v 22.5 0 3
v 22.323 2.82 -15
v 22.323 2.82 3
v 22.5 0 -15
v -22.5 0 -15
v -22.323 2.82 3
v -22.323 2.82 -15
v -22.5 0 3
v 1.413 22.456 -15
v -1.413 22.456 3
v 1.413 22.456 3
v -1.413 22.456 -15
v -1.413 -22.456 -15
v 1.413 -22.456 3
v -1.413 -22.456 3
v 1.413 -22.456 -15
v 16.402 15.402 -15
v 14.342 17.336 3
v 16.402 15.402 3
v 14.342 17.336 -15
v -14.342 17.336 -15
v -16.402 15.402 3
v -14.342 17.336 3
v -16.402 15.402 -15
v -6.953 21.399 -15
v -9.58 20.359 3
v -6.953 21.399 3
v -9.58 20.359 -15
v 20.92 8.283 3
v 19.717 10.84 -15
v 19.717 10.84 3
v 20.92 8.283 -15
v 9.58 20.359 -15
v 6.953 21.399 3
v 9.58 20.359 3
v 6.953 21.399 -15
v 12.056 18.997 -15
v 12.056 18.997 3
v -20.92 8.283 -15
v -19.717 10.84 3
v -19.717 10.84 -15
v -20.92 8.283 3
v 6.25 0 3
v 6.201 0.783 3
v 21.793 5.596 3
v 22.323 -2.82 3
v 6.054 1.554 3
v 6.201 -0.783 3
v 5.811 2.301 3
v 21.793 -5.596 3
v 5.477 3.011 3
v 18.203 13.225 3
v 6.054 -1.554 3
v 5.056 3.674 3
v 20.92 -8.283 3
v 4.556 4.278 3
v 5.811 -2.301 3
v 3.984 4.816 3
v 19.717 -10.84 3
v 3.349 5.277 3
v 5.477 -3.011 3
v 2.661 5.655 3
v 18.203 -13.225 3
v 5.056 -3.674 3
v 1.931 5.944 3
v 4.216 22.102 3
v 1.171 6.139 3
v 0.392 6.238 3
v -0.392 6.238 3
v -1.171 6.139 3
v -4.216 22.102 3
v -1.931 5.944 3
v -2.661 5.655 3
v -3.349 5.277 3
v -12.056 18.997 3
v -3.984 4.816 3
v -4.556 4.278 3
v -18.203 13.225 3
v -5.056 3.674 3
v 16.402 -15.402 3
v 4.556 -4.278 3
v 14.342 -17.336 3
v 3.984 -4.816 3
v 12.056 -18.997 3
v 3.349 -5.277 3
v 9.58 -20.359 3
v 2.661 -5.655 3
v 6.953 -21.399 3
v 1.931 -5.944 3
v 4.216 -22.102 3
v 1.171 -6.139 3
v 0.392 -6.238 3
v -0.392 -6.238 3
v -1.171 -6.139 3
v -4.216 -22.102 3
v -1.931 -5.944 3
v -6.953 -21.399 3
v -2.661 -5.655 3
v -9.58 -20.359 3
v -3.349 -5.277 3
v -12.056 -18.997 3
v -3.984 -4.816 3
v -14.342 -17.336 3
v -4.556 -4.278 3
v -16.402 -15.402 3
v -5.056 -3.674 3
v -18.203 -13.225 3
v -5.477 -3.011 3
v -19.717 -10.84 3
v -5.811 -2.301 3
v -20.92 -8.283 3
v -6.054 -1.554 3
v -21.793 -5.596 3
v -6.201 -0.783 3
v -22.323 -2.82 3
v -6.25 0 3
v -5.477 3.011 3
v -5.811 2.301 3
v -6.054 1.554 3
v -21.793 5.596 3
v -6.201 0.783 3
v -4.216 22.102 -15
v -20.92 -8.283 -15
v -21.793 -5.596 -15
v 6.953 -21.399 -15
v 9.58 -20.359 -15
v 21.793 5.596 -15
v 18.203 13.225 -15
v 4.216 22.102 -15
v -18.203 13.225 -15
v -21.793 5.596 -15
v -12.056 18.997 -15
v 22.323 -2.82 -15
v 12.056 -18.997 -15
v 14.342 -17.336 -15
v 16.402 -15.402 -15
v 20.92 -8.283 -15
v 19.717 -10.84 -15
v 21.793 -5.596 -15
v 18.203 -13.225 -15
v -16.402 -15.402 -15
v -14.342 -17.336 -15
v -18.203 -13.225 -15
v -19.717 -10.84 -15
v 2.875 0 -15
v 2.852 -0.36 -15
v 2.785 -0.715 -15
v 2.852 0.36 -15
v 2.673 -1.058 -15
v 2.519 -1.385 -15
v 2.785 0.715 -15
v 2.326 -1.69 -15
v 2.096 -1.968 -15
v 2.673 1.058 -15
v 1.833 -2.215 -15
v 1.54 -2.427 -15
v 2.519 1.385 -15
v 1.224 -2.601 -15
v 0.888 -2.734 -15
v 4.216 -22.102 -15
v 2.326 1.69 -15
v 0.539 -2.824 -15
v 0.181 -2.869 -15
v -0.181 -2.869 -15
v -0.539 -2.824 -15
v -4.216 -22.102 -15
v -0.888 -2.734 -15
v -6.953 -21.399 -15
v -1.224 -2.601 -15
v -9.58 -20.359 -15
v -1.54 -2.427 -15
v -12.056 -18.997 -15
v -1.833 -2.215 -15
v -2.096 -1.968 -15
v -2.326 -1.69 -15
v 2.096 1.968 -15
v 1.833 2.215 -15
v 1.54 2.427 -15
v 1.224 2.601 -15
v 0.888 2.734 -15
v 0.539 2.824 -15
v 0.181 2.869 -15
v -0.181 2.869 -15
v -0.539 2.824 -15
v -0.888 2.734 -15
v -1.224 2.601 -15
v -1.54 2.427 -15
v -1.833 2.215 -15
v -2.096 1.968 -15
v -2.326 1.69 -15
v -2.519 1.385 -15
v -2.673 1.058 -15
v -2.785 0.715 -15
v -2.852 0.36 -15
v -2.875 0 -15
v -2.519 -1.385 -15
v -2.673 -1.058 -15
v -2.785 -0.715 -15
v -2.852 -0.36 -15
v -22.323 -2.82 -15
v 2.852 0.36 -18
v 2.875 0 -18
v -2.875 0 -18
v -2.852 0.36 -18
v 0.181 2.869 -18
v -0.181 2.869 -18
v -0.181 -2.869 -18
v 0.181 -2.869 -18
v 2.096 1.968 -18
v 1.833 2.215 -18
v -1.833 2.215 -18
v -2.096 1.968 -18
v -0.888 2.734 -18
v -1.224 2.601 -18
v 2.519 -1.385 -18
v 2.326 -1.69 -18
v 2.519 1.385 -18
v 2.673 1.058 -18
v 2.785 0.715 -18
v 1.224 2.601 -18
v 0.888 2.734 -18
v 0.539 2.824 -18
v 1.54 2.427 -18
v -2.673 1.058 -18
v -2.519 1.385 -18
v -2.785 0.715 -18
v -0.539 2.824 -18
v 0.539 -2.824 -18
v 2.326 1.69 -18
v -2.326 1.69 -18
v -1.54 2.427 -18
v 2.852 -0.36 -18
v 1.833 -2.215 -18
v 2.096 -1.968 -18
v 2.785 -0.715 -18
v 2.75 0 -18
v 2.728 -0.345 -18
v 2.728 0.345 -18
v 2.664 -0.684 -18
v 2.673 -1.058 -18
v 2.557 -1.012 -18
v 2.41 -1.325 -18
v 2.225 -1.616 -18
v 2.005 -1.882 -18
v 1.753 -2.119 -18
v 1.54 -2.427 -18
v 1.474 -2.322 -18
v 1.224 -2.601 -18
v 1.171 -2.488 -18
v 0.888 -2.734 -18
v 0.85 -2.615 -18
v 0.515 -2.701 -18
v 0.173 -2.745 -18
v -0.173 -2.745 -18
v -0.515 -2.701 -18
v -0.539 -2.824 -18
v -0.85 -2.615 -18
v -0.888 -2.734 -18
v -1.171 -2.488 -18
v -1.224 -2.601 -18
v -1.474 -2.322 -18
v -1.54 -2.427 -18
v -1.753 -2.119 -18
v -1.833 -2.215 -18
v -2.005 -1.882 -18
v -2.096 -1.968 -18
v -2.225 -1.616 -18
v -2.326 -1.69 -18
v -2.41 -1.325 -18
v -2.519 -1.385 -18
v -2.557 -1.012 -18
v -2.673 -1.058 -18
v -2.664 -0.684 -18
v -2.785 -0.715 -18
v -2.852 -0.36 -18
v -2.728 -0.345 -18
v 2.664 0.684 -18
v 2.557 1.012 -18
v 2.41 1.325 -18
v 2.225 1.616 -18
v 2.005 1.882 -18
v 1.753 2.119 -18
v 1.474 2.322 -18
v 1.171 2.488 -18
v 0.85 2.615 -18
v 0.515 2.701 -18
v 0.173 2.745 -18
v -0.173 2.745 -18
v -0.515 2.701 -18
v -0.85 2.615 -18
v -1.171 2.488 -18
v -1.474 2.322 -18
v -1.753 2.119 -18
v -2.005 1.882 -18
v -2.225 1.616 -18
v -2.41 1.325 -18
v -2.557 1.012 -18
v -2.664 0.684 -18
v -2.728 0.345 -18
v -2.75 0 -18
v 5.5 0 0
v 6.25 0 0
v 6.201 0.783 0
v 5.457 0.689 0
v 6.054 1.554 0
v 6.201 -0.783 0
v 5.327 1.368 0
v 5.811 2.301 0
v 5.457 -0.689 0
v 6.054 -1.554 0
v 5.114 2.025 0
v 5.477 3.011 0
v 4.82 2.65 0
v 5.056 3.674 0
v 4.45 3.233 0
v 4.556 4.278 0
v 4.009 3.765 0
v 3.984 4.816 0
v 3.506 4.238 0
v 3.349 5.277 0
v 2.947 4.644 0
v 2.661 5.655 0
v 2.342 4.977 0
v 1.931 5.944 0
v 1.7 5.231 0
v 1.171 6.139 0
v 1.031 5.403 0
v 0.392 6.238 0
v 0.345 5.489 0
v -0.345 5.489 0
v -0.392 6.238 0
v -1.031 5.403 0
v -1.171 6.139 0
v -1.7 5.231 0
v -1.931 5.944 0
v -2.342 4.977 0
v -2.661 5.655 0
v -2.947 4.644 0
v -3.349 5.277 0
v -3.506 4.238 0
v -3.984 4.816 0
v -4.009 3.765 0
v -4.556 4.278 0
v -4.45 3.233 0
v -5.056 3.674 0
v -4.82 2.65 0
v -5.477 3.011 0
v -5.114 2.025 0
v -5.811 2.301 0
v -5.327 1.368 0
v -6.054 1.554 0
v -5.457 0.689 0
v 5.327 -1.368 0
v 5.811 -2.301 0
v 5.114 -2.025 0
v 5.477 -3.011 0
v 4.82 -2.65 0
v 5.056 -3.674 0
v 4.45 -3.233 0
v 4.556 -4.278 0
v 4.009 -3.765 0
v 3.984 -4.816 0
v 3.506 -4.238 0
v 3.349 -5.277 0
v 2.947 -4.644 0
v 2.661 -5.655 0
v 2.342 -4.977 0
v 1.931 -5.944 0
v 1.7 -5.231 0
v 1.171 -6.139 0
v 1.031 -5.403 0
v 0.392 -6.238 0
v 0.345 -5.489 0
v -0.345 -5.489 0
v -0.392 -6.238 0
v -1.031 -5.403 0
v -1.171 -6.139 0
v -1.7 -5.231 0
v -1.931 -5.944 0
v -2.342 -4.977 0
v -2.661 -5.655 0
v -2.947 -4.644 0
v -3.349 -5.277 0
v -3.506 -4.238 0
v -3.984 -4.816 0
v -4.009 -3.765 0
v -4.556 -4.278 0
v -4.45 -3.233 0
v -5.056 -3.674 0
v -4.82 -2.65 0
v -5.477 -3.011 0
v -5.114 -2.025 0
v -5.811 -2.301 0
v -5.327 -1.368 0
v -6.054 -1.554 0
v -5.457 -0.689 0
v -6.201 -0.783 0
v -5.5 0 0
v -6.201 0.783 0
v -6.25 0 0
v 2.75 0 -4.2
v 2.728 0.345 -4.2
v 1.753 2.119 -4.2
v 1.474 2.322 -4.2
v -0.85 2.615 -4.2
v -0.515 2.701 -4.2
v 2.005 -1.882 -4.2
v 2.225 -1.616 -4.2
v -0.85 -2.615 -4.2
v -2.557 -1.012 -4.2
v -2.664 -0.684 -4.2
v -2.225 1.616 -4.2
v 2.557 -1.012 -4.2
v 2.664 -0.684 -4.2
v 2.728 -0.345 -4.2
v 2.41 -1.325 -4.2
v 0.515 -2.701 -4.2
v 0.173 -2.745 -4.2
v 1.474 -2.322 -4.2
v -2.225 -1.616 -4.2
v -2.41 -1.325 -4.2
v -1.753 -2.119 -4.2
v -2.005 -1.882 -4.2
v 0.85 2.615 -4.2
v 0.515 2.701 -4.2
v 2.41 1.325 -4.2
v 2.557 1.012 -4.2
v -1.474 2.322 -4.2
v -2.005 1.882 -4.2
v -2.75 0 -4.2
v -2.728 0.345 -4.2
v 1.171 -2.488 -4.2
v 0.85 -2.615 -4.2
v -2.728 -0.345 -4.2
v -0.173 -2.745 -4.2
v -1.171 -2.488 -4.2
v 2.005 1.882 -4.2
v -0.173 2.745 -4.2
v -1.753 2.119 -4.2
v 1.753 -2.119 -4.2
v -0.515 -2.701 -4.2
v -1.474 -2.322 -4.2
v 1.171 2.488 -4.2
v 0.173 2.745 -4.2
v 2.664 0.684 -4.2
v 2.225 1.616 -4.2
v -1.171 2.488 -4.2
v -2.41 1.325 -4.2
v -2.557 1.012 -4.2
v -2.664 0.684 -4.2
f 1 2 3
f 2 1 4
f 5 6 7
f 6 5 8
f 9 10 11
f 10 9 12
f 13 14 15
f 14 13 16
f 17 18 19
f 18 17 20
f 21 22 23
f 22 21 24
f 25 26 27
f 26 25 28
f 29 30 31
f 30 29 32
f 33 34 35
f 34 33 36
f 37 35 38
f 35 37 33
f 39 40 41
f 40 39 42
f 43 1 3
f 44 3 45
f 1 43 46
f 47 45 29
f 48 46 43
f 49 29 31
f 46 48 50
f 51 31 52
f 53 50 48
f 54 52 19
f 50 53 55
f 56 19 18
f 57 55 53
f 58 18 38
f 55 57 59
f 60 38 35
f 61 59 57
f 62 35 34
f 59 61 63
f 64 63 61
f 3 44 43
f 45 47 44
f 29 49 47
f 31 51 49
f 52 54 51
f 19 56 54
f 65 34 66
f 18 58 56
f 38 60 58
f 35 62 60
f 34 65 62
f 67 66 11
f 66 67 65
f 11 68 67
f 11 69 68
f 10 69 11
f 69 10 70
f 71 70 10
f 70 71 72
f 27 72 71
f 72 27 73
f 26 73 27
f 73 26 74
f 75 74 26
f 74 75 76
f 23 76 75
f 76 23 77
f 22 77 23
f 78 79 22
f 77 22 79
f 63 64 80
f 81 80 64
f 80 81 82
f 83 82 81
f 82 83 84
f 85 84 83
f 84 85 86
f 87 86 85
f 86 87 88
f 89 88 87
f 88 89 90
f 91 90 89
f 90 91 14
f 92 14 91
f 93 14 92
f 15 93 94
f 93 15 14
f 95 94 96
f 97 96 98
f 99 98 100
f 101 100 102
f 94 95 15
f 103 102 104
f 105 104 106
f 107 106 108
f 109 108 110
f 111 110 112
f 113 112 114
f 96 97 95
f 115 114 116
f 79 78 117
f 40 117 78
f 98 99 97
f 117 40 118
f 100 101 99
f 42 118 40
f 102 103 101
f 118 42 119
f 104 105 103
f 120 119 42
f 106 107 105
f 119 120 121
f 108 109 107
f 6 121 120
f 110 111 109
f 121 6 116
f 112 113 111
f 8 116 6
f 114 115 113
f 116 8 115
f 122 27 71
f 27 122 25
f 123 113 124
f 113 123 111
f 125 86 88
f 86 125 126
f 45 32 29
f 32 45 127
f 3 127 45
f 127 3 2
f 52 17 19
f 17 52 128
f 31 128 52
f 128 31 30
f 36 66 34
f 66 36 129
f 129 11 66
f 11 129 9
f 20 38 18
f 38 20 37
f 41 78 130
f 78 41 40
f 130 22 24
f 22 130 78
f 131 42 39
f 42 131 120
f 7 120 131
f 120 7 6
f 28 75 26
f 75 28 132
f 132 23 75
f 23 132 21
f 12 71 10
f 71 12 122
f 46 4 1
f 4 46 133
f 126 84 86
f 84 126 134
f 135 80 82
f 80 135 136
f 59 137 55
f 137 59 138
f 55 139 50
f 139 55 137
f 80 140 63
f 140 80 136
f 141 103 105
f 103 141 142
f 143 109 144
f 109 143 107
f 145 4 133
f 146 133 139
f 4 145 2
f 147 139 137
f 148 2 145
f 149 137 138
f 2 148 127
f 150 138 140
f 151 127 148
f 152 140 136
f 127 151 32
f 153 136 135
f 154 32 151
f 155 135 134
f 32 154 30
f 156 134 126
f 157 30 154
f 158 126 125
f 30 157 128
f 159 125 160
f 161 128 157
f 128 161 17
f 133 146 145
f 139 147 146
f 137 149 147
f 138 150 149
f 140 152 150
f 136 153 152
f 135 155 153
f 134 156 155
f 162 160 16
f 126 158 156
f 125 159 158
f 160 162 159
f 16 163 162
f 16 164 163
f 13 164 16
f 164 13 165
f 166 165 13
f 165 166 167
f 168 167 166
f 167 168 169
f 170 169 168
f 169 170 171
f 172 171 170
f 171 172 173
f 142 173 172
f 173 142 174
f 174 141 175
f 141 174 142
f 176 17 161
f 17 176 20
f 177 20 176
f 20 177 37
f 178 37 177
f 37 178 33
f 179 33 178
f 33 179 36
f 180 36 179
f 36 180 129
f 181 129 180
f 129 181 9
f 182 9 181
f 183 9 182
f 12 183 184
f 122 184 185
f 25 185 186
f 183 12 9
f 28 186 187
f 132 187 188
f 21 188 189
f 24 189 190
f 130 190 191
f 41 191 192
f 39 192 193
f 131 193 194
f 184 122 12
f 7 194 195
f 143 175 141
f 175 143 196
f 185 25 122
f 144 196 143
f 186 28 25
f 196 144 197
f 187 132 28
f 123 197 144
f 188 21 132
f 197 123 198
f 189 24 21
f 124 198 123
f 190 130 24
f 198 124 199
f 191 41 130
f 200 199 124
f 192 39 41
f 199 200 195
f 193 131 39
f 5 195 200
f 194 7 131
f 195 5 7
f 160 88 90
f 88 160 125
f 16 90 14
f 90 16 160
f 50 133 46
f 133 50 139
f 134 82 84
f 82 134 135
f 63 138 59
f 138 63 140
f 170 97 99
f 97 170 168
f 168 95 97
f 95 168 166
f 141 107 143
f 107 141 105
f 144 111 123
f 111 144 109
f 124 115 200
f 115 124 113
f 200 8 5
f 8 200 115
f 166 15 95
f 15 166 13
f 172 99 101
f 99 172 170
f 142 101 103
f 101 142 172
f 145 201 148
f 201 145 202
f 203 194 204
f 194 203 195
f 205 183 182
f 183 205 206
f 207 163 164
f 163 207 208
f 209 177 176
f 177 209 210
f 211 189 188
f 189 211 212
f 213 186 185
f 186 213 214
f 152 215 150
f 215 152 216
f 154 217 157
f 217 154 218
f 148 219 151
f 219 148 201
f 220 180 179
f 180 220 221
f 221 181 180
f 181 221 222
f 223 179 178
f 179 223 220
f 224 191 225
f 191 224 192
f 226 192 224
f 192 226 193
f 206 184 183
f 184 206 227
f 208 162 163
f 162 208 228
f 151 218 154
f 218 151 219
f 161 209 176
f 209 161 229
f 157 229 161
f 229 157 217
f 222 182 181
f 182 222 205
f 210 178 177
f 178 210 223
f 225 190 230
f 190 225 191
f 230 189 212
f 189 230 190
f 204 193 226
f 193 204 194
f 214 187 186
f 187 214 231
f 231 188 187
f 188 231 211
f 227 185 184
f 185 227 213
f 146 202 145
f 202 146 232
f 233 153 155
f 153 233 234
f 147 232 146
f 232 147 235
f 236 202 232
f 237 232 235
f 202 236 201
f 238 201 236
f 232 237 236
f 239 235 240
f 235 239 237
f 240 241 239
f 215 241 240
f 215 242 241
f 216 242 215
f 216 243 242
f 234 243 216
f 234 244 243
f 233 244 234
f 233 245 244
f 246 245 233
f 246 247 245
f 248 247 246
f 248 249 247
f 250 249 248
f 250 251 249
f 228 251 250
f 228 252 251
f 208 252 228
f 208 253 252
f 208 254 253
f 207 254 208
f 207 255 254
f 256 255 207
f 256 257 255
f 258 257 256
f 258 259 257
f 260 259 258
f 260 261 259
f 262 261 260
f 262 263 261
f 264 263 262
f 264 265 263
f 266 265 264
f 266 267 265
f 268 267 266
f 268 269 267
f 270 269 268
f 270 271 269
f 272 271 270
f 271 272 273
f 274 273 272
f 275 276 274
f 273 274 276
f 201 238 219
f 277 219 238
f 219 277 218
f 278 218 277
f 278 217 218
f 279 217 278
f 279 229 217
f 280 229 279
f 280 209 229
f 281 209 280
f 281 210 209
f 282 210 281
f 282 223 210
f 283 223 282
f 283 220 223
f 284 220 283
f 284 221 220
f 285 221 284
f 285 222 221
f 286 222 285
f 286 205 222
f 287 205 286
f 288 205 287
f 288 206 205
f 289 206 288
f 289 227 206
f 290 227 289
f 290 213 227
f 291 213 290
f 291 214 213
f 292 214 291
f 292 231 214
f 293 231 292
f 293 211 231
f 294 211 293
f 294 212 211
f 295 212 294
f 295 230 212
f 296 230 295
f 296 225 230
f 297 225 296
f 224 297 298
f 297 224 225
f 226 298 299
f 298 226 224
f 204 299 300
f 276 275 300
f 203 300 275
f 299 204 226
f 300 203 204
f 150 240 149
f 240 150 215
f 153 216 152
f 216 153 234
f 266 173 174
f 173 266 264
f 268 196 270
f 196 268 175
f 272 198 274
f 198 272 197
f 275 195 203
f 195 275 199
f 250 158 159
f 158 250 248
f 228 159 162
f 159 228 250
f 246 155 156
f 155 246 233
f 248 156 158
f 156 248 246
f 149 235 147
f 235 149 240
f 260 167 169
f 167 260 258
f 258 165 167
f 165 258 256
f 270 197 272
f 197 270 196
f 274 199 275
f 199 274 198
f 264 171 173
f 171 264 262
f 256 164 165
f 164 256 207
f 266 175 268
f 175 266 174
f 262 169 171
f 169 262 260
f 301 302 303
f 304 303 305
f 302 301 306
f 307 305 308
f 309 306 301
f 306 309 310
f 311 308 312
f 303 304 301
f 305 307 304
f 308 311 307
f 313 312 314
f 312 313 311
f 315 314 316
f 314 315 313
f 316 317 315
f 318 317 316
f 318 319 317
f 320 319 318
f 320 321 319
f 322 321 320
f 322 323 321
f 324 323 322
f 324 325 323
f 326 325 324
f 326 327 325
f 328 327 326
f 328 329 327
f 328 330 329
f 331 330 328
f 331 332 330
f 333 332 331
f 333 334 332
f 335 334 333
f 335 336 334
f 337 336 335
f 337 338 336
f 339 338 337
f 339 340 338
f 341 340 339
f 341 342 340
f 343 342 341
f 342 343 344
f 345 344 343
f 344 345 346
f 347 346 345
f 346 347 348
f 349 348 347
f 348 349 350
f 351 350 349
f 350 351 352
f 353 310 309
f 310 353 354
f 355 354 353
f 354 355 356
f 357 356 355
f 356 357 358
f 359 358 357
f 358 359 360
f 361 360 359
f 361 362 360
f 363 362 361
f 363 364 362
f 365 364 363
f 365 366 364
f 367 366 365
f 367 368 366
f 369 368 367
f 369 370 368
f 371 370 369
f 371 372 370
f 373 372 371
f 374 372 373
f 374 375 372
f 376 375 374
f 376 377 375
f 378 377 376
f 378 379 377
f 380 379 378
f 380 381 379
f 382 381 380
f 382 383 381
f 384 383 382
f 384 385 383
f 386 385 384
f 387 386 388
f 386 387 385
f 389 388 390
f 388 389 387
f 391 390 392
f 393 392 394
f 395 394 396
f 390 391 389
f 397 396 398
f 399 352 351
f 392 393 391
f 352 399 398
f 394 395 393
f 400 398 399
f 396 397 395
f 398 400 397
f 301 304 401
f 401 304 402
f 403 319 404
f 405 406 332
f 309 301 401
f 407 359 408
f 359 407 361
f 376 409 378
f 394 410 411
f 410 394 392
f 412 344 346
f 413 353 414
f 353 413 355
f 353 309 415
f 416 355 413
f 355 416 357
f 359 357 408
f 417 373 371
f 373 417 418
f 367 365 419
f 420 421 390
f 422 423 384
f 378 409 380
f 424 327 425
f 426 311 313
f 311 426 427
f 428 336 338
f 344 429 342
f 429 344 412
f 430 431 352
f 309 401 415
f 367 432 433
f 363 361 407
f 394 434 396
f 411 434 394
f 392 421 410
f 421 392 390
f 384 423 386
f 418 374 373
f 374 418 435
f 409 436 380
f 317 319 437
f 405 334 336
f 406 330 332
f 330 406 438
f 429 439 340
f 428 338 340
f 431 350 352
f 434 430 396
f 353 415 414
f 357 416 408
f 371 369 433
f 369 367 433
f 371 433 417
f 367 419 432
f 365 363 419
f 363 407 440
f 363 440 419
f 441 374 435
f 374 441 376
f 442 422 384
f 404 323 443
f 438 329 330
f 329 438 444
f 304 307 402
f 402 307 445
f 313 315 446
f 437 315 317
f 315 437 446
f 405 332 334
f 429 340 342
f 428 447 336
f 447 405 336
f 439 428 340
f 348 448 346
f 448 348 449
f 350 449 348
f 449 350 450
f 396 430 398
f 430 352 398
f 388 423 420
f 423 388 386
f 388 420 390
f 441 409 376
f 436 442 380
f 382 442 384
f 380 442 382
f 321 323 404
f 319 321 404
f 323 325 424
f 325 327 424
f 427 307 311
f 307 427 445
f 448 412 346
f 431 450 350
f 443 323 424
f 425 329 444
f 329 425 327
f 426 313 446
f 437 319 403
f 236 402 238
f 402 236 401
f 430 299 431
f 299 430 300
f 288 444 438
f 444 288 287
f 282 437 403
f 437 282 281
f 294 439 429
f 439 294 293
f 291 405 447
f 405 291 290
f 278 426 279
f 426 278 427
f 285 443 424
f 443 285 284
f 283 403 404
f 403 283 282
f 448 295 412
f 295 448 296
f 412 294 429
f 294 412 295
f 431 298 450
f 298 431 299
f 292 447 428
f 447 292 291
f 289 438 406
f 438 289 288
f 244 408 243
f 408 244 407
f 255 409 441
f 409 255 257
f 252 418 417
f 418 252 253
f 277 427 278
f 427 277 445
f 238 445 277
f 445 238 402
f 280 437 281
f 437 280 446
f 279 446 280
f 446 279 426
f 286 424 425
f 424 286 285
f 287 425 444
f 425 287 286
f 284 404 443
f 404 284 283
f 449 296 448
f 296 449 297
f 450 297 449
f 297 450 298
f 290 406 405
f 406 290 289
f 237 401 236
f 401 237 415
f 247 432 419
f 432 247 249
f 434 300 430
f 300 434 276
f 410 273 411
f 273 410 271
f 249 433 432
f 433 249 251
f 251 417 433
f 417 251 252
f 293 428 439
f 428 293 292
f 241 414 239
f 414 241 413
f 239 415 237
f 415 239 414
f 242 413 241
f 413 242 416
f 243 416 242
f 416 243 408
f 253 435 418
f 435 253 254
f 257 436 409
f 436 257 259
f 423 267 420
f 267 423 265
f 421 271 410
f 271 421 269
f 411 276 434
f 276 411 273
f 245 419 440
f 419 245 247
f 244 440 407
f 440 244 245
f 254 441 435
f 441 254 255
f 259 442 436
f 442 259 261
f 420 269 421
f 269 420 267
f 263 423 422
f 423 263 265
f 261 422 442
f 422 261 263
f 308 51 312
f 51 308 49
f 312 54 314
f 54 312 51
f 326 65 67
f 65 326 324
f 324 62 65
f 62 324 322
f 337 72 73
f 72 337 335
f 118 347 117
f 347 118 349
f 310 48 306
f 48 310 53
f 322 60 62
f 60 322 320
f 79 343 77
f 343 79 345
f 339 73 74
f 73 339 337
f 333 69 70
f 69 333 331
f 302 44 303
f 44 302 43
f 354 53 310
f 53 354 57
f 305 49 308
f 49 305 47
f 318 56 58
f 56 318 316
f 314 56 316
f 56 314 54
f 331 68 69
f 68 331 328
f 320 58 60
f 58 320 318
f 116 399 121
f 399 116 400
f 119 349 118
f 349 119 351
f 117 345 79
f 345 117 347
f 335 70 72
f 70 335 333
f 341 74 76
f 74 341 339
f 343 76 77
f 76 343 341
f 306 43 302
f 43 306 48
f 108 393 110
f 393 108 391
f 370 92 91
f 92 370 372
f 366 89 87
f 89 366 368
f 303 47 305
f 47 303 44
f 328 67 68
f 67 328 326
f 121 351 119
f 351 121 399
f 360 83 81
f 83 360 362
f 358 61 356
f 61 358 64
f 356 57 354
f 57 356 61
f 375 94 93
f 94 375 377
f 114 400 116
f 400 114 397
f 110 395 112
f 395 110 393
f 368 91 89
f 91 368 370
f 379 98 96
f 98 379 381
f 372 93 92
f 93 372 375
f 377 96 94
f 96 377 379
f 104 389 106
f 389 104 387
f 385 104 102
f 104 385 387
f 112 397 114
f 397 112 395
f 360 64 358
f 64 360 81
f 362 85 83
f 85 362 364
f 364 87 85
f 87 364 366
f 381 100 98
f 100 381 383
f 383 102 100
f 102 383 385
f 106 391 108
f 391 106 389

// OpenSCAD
$fn = 50;

difference() {
	union() {
		translate(v = [0, 0, -15.0]) {
			cylinder(h = 18, r = 22.5);
		}
		#translate(v = [0, 0, -18.0]) {
			cylinder(h = 18, r = 2.875);
		}
	}
	union() {
		translate(v = [0, 0, 0]) {
			rotate(a = [0, 0, 0]) {
				difference() {
					union() {
						translate(v = [0, 0, -18.0]) {
							cylinder(h = 18, r = 2.25);
						}
						translate(v = [0, 0, -4.2]) {
							cylinder(h = 4.2, r1 = 2.75, r2 = 5.5);
						}
						translate(v = [0, 0, -18.0]) {
							cylinder(h = 18, r = 2.75);
						}
						translate(v = [0, 0, -18.0]) {
							cylinder(h = 18, r = 2.25);
						}
					}
					union();
				}
			}
		}
		#cylinder(h = 3, r = 6.25);
	}
}
